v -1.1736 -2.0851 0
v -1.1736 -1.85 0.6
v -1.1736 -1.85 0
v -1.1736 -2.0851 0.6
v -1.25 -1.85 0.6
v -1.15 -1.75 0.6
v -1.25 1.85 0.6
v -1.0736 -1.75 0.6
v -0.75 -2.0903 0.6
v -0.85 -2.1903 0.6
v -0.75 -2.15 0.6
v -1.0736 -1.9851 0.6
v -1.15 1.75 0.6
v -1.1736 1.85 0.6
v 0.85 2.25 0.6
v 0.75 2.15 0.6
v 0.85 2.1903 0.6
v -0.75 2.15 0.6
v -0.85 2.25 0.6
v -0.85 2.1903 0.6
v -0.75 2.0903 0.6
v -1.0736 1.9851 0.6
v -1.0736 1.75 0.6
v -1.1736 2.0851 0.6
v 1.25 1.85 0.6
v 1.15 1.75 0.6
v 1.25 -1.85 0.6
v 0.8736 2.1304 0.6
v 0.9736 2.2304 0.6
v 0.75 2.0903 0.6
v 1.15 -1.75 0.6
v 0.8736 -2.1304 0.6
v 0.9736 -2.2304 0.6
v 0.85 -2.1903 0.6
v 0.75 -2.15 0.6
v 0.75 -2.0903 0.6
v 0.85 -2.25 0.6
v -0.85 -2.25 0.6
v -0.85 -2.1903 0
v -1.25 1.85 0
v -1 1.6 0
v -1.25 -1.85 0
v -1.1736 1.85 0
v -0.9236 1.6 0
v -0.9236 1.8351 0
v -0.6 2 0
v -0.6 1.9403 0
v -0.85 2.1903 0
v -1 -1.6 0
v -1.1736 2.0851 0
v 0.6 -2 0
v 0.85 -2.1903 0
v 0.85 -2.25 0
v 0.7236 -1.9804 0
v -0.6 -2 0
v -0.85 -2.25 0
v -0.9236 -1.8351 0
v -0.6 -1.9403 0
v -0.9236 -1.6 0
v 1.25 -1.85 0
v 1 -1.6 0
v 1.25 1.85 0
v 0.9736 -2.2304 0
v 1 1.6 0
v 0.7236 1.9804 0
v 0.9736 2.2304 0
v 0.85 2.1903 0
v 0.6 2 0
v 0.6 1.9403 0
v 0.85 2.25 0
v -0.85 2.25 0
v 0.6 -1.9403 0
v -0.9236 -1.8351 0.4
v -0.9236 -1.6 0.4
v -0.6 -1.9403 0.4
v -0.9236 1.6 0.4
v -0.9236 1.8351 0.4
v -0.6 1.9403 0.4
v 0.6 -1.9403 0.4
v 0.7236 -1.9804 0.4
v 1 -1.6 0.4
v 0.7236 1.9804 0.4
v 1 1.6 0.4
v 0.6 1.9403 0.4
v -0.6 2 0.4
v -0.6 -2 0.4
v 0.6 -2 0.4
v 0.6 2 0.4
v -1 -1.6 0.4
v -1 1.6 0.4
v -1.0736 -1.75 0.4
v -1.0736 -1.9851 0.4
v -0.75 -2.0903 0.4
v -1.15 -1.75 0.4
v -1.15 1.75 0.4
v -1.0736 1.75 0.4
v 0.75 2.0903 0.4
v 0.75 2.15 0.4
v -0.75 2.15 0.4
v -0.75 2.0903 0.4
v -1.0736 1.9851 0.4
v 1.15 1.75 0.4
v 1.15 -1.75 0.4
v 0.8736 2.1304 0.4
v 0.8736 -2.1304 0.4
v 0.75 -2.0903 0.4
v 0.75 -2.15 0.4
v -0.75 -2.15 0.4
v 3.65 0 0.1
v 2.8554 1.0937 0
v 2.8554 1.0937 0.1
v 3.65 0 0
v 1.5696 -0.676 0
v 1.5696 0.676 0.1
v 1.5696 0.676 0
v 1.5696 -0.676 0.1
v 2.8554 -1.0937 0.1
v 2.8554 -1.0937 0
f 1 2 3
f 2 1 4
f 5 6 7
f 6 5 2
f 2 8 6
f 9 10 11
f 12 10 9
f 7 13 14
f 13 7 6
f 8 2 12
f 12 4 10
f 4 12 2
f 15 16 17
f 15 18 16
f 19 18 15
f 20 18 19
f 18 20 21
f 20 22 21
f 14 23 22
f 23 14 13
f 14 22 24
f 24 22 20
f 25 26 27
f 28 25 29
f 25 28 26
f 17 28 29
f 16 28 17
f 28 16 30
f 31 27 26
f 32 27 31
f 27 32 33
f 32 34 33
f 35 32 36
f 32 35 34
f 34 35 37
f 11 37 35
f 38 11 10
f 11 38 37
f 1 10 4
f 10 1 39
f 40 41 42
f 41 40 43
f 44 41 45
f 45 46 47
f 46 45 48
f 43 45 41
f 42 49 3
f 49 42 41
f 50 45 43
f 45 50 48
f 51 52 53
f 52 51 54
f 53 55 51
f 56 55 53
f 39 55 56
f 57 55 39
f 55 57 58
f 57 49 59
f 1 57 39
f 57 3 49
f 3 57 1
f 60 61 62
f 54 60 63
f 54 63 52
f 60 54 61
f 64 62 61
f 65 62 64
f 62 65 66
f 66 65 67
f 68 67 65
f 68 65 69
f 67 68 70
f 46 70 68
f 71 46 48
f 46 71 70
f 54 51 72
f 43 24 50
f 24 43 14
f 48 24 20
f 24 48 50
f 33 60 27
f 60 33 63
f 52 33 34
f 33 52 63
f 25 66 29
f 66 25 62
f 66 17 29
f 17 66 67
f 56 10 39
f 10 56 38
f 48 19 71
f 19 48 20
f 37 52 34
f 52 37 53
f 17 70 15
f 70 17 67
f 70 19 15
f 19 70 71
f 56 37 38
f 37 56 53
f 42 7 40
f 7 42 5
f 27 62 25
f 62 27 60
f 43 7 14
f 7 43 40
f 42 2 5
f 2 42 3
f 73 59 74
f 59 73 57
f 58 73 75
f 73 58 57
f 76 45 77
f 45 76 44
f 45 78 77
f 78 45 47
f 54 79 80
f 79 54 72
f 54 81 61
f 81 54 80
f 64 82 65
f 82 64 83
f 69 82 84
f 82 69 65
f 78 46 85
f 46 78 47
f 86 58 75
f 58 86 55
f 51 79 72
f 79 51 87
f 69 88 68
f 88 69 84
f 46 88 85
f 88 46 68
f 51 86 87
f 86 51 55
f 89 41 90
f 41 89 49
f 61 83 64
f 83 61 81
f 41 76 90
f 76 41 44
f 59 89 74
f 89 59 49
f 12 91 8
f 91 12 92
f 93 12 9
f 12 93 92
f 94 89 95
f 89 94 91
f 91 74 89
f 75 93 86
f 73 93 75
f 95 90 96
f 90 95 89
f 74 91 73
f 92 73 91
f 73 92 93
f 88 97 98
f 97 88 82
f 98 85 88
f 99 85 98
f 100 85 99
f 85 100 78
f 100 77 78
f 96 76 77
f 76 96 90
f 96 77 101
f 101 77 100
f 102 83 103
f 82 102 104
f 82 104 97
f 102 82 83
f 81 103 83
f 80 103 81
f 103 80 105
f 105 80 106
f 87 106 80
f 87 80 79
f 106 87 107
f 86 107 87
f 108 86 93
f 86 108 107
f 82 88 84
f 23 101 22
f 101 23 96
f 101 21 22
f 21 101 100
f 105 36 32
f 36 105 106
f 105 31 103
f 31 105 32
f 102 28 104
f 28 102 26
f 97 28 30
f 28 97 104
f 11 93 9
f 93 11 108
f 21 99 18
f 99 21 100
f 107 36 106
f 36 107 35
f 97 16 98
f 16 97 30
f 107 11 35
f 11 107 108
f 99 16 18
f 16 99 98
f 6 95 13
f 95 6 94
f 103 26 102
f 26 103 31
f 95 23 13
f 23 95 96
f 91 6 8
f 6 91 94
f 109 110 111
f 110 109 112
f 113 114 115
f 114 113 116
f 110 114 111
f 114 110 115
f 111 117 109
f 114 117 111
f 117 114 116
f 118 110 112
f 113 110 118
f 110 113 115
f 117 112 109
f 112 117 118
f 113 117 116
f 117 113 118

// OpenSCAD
use <MCAD/boxes.scad>

mainBox=[2.5, 4.5, .6];

translate([0,0,.3]) {
difference() {
    roundedBox(mainBox, .4, true);
    translate([0,0,.4]) {
        roundedBox([2.0, 4.0, 4.5] , .4, true);
        roundedBox([2.3, 4.3, .6] , .4, true);
    }
}
}
translate([2.5,0,0]) {
    cylinder(.1,1.15,1.15);
}
